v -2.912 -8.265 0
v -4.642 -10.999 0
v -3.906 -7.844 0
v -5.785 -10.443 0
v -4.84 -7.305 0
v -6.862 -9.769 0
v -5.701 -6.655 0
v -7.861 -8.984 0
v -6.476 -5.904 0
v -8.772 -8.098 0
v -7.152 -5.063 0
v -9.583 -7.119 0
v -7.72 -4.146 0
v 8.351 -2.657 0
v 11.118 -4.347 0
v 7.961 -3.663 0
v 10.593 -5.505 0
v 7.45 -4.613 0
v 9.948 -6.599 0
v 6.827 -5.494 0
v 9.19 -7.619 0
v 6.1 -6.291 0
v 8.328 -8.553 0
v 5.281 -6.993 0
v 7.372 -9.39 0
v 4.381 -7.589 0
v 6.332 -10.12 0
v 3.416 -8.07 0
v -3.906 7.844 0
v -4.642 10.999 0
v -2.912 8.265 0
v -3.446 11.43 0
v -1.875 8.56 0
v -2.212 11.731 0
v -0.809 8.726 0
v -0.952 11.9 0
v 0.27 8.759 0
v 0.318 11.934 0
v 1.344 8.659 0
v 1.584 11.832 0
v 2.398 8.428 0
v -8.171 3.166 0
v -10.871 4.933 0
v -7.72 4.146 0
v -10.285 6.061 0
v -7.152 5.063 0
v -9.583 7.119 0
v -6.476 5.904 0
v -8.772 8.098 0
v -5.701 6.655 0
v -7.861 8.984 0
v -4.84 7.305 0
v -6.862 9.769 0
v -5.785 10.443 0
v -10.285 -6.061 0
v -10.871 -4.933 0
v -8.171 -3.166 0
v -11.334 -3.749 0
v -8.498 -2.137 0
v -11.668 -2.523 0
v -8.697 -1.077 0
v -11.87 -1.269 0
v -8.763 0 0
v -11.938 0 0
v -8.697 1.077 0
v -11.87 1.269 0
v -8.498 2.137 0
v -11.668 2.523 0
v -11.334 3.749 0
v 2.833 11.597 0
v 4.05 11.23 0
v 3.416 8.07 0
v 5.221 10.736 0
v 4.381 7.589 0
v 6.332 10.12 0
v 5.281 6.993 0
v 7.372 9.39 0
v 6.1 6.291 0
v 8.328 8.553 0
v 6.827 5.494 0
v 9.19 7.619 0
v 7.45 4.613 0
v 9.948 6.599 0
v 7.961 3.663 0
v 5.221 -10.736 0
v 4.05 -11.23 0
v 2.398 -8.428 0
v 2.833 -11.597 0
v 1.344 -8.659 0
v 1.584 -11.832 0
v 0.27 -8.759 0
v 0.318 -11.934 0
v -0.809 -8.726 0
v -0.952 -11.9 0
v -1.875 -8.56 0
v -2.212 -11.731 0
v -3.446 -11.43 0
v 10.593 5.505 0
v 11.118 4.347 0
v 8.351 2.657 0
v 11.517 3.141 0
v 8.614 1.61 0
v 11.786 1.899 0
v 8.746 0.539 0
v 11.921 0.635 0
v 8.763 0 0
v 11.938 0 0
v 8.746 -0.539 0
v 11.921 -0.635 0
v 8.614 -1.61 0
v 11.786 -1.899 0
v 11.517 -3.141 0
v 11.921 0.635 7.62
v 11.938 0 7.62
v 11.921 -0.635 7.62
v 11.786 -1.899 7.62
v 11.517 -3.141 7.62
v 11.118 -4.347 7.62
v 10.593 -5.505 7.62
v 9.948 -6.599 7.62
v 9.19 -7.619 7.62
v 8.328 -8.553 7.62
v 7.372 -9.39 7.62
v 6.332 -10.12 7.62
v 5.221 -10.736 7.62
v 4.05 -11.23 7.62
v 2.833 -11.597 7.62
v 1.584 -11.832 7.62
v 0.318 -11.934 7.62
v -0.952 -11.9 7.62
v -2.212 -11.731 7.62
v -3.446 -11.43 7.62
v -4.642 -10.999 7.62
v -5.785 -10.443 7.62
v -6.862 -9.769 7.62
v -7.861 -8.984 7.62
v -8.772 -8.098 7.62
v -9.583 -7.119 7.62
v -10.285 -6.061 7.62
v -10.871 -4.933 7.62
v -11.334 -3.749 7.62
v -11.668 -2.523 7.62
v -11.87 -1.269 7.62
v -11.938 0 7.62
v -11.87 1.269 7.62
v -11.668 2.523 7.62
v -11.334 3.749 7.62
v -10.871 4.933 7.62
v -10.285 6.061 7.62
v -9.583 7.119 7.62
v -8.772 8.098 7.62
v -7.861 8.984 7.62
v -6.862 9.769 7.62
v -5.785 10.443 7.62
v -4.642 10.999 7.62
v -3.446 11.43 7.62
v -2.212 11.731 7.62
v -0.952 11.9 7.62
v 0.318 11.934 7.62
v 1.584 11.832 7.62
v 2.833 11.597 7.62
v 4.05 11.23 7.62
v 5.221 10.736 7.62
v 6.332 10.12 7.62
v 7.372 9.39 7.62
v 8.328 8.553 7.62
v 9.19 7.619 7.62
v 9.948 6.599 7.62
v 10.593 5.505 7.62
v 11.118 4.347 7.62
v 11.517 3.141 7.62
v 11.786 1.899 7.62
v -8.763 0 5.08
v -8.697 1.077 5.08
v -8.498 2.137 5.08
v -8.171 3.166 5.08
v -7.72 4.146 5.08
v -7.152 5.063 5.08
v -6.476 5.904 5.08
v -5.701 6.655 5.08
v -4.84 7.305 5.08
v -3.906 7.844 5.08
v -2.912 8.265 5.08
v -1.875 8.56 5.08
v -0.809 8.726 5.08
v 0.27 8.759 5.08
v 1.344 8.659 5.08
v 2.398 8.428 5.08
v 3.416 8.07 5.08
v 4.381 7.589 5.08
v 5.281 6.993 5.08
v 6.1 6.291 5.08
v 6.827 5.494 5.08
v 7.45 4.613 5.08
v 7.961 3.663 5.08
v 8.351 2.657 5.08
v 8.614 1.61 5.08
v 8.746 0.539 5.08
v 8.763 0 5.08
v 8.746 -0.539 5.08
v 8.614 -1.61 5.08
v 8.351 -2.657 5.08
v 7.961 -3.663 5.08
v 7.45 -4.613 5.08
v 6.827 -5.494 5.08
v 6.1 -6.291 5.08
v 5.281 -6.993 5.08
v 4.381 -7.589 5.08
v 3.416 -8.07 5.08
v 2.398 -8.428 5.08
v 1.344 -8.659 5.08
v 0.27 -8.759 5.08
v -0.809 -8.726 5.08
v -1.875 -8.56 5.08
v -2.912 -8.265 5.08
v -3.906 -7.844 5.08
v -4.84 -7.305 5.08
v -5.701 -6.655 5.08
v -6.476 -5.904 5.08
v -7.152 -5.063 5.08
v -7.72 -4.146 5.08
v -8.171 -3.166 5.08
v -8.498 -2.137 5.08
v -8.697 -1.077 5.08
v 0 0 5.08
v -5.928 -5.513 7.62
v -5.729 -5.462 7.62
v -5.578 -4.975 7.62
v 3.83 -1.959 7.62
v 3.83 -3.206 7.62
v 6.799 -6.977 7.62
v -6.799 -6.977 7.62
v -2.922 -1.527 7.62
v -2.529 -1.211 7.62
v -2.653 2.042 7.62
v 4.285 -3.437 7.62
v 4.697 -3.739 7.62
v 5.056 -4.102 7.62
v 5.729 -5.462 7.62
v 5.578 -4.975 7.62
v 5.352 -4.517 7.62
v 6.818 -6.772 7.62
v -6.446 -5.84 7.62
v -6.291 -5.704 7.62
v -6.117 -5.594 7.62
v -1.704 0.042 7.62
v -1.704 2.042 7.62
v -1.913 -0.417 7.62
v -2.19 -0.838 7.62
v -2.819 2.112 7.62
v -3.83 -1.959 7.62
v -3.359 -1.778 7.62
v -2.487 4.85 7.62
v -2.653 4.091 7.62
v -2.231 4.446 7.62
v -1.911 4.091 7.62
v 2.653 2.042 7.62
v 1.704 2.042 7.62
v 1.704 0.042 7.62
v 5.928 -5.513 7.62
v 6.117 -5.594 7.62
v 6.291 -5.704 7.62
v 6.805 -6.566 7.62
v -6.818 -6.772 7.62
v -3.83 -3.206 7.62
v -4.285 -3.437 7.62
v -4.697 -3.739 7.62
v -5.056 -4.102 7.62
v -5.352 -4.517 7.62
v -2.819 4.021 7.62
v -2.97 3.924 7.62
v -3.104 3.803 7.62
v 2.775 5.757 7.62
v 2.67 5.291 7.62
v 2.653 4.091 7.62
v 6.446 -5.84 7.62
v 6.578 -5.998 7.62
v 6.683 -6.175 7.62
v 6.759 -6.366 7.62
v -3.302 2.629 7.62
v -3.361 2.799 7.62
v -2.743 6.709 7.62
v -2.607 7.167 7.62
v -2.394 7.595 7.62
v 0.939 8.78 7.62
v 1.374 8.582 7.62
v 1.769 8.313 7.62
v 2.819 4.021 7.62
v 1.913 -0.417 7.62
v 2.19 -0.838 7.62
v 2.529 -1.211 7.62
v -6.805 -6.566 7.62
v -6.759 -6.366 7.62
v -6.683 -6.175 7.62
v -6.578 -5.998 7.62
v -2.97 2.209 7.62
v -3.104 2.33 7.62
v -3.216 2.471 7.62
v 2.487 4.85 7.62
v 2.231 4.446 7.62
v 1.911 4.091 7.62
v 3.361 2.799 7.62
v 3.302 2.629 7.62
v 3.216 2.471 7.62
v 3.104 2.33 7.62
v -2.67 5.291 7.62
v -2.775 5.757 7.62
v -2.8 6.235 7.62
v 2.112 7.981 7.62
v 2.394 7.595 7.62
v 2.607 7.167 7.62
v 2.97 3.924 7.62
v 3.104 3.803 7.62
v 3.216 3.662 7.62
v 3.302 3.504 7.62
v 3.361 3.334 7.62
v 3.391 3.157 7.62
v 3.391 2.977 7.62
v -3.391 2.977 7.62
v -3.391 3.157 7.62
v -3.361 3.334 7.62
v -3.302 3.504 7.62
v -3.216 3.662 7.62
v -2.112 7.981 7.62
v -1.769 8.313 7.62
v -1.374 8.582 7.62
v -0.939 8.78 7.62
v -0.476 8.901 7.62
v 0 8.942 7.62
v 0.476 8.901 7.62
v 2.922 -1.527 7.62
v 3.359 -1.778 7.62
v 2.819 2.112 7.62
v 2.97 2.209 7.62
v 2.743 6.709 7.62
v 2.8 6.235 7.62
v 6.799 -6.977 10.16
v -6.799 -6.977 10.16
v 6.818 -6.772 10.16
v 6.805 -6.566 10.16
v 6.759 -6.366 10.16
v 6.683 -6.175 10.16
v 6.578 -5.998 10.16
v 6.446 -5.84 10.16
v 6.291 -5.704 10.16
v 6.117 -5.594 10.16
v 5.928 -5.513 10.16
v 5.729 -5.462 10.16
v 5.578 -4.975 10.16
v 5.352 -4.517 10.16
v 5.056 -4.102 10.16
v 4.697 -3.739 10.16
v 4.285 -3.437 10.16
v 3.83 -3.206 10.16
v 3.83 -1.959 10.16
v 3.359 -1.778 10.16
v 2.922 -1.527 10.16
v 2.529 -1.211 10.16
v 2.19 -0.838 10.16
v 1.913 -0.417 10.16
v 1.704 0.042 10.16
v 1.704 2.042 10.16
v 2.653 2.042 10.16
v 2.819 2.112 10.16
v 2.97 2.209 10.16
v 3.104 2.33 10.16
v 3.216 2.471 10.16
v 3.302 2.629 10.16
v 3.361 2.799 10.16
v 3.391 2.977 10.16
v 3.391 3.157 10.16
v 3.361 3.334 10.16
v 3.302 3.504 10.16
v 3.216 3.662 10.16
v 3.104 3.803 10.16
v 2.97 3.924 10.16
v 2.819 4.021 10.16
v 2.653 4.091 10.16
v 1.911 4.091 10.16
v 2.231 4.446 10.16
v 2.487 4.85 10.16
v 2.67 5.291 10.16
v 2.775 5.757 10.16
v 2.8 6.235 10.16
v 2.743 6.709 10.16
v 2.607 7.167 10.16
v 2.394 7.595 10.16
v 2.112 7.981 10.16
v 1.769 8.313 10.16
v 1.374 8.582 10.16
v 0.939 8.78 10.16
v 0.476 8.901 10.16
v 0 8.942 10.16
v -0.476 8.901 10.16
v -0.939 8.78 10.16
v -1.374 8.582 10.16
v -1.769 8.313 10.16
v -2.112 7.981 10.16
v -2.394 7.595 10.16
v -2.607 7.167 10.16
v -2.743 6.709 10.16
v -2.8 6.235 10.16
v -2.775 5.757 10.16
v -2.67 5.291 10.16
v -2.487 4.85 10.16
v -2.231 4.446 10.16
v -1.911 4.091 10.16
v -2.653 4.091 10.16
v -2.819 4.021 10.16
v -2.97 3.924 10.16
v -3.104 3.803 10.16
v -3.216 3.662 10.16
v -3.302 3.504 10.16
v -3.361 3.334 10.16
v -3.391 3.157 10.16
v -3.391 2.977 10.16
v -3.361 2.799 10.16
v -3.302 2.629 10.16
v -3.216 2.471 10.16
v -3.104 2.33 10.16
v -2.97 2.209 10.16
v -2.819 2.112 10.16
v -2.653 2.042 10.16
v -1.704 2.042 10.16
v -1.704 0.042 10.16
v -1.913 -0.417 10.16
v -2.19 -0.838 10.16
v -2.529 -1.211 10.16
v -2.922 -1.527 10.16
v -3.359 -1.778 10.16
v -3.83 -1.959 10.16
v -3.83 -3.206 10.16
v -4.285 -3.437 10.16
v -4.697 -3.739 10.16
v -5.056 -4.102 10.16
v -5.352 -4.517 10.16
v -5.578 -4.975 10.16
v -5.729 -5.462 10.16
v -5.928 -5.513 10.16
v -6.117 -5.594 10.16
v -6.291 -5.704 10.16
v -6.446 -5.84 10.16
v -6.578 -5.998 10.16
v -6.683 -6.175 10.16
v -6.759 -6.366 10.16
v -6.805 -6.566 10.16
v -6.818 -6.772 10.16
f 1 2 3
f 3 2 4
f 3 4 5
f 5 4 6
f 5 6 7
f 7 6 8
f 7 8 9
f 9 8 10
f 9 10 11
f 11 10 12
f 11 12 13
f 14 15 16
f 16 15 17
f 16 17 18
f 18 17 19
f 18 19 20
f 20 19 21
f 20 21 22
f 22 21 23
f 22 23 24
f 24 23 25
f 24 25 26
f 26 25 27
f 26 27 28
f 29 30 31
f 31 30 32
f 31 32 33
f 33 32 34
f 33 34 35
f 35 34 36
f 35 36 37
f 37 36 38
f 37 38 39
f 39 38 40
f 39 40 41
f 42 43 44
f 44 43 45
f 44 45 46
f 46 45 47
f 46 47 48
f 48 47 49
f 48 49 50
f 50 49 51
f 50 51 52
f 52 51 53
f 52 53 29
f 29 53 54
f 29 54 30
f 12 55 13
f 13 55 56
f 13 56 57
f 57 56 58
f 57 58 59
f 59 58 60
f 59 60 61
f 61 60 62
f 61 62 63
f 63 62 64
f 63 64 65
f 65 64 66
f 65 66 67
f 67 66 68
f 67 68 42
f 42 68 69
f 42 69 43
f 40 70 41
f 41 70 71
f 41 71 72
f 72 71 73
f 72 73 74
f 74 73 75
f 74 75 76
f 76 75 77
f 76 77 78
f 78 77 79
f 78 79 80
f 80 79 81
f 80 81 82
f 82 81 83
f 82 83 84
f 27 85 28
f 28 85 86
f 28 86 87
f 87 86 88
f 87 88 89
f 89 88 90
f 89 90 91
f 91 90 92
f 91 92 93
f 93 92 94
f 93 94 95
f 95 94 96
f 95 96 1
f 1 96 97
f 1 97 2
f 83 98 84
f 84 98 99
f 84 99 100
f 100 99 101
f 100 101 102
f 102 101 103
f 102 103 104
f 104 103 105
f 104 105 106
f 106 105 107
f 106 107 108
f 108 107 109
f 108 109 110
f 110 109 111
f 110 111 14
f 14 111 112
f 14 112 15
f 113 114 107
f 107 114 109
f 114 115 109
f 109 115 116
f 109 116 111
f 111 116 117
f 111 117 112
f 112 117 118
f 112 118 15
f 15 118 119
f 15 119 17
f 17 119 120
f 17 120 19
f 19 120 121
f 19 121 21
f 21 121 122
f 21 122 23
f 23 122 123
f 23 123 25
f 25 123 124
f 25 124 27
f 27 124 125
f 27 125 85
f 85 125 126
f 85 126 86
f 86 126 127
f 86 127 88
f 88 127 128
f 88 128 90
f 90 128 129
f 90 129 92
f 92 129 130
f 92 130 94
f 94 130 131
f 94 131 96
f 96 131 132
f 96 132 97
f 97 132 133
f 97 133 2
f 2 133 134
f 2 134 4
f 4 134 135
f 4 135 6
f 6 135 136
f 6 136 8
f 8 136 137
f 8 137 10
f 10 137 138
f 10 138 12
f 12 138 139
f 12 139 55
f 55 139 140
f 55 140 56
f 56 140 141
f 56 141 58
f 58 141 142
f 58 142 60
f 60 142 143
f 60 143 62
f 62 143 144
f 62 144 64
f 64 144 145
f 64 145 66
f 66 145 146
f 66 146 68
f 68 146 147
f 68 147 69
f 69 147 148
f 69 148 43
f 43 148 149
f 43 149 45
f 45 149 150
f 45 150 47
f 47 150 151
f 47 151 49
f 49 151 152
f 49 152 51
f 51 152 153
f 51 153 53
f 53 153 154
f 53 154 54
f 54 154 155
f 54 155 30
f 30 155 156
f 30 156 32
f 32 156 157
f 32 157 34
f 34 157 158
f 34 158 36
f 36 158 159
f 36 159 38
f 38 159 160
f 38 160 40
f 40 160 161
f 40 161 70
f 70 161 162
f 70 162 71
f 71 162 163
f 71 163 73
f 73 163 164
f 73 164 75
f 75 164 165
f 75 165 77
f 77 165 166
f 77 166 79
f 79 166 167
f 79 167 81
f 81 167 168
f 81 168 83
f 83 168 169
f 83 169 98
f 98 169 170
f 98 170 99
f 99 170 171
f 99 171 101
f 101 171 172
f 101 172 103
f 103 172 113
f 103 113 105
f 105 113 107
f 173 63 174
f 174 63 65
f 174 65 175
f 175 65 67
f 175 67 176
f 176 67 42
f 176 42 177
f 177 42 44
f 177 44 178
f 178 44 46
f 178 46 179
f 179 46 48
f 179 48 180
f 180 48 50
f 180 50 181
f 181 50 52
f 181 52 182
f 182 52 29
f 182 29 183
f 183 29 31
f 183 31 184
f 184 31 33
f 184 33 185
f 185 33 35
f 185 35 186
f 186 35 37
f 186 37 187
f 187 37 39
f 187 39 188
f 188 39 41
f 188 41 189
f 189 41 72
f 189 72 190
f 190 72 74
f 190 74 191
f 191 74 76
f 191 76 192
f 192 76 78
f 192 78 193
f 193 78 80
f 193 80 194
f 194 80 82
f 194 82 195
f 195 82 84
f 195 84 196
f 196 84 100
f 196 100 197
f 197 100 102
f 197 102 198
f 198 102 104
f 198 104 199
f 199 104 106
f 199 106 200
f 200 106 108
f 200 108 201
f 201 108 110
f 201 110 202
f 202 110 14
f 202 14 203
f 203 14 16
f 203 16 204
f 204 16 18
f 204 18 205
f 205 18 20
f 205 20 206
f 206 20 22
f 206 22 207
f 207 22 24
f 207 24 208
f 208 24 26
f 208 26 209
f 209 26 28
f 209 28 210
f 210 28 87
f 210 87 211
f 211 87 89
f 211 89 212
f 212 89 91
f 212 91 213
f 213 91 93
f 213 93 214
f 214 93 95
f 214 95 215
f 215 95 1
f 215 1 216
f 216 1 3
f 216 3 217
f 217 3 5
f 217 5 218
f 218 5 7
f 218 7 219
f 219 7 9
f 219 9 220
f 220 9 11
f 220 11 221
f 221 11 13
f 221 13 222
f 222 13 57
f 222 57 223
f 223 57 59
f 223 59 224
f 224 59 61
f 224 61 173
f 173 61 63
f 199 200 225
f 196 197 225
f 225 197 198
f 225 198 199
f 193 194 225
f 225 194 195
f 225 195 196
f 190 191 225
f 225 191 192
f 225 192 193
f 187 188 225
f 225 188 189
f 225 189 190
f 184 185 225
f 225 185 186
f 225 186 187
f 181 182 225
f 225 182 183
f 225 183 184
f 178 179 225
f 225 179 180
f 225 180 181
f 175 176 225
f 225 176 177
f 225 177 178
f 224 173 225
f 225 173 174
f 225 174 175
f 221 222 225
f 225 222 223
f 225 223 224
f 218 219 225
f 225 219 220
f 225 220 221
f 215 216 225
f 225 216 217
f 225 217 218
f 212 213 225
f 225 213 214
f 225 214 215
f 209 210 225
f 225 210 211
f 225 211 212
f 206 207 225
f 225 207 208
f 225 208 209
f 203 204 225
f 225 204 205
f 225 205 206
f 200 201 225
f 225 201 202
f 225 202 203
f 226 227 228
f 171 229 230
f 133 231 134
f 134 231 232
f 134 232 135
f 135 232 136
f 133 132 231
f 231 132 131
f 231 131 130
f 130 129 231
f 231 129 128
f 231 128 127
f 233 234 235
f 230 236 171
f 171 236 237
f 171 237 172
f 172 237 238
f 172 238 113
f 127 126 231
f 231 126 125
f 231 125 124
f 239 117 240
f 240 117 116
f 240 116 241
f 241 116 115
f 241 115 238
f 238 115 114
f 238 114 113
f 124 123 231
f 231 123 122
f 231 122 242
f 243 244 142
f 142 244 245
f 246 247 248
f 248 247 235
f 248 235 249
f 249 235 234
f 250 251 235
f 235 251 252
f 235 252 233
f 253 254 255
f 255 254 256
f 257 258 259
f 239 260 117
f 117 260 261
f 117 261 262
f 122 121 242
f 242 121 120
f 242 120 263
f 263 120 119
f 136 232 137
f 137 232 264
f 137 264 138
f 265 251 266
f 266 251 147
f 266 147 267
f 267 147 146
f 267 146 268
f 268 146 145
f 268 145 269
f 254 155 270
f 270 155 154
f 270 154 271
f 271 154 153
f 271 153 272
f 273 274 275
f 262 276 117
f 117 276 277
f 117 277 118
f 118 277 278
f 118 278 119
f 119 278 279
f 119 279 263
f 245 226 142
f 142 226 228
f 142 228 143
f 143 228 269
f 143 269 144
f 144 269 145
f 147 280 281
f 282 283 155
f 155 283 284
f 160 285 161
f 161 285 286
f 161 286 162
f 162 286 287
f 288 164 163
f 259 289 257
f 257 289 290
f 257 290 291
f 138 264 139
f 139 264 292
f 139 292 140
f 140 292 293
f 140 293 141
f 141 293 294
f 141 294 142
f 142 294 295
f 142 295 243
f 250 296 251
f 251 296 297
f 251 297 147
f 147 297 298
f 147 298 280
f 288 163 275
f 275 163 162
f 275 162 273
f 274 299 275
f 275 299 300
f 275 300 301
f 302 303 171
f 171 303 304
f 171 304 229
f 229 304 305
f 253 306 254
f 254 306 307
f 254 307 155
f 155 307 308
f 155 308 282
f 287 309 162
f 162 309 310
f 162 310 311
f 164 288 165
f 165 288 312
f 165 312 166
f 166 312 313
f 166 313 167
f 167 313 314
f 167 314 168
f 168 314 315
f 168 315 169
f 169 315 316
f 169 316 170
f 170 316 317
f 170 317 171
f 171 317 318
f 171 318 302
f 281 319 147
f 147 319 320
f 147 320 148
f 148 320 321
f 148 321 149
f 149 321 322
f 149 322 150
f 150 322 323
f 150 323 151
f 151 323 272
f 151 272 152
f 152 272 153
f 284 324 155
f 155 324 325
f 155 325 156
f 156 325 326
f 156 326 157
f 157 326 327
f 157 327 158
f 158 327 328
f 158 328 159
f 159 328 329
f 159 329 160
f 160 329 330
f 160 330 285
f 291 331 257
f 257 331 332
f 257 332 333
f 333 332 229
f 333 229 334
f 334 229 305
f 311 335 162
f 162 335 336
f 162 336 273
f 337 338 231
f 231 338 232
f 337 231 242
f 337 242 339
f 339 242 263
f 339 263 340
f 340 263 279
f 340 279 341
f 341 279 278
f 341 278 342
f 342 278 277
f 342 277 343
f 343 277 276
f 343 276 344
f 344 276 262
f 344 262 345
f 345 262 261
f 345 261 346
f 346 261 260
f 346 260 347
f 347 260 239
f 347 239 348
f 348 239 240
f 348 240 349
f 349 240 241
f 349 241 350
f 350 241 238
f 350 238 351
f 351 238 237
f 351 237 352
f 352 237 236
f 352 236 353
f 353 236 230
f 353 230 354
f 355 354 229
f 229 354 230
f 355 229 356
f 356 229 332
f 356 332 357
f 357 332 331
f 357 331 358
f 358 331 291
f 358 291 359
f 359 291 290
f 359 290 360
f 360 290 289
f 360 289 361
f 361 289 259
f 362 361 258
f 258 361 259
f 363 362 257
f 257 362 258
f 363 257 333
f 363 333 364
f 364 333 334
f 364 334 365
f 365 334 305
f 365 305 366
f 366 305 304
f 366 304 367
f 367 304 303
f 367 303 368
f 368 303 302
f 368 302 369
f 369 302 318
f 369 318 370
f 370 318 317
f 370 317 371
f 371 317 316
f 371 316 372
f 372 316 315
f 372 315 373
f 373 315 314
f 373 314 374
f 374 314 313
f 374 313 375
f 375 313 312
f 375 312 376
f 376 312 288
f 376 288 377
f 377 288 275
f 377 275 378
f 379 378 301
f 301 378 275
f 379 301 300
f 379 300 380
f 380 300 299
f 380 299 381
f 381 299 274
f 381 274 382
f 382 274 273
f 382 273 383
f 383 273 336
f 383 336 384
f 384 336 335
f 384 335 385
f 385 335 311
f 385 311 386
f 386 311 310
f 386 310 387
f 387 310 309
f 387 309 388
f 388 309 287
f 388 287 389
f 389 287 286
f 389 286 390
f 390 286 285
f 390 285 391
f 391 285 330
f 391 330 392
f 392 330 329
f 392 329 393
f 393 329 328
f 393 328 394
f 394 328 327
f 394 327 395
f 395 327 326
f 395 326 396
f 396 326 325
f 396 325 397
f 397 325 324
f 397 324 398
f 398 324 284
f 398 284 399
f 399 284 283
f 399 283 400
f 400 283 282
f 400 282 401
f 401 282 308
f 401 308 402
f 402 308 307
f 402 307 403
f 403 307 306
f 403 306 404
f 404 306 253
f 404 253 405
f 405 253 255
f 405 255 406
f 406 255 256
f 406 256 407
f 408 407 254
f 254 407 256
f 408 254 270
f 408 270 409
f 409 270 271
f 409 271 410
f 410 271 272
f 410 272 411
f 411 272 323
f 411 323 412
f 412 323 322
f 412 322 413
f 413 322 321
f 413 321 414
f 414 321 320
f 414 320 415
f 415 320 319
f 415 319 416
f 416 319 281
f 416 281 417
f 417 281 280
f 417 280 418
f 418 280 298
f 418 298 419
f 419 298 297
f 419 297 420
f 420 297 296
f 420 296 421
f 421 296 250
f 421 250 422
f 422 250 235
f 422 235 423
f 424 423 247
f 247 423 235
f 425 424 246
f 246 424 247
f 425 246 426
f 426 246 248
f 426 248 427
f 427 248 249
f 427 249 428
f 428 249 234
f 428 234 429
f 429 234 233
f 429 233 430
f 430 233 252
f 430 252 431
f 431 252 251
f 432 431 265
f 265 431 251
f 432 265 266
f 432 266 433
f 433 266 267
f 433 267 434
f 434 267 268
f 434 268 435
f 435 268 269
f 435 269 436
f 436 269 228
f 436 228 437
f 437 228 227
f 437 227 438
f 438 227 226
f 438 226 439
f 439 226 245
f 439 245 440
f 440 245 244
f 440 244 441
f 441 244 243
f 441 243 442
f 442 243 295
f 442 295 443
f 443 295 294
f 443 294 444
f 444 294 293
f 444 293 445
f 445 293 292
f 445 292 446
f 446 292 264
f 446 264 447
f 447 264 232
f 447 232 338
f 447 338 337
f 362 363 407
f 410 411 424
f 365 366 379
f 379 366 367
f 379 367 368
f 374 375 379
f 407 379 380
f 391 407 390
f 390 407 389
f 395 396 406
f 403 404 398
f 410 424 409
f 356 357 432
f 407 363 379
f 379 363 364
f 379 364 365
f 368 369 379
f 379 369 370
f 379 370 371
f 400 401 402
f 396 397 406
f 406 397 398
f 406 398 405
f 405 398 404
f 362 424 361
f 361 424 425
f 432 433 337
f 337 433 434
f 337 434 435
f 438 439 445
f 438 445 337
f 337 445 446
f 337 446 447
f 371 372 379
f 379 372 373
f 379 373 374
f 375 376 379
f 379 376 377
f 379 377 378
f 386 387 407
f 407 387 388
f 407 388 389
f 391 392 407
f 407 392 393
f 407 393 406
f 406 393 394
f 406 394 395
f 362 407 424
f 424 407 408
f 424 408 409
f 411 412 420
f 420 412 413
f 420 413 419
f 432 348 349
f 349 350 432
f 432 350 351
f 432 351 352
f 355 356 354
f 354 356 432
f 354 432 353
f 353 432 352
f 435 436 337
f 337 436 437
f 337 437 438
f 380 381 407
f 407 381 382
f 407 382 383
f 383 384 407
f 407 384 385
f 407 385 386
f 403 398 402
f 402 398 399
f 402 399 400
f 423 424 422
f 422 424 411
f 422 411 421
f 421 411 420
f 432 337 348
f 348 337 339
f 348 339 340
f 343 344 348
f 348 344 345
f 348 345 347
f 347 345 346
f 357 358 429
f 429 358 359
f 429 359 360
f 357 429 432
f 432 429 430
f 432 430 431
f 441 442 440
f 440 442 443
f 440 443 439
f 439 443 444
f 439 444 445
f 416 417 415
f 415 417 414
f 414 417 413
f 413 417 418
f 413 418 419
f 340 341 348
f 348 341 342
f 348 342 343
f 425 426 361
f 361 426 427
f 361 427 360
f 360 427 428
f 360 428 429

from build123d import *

# Parameters (mm, degrees)
SKETCH1_R           = 11.938
SKETCH1_R_2         = 8.763
BOSS_EXTRUDE1_DEPTH = 5.08
SKETCH2_R           = 11.938
BOSS_EXTRUDE2_DEPTH = 2.54
BOSS_EXTRUDE3_DEPTH = 2.54


with BuildPart() as part:
    # Sketch1 → Boss-Extrude1 (new body)
    with BuildSketch(Plane.XY):
        Circle(SKETCH1_R)
        Circle(SKETCH1_R_2, mode=Mode.SUBTRACT)
    extrude(amount=BOSS_EXTRUDE1_DEPTH)

    # Sketch2 → Boss-Extrude2 (add)
    with BuildSketch(Plane.XY.offset(5.08)):
        Circle(SKETCH2_R)
    extrude(amount=BOSS_EXTRUDE2_DEPTH)

    # Sketch3 → Boss-Extrude3 (add)
    with BuildSketch(Plane.XY.offset(7.62)):
        with BuildLine():
            Line((6.799209261, -6.976502995), (-6.799209261, -6.976502995))
            ThreePointArc((-6.799209261, -6.976502995), (-6.57773466, -5.997747251), (-5.729043644, -5.462268619))
            ThreePointArc((-5.729043644, -5.462268619), (-5.055714591, -4.101642026), (-3.830122247, -3.205762488))
            Line((-3.830122247, -3.205762488), (-3.830122247, -1.958745943))
            ThreePointArc((-3.830122247, -1.958745943), (-2.529170198, -1.211237743), (-1.703785584, 0.041752673))
            Line((-1.703785584, 0.041752673), (-1.703785584, 2.042251288))
            Line((-1.703785584, 2.042251288), (-2.652822308, 2.042251288))
            ThreePointArc((-2.652822308, 2.042251288), (-3.394876144, 3.066744886), (-2.652822308, 4.091238485))
            Line((-2.652822308, 4.091238485), (-1.910768473, 4.091238485))
            ThreePointArc((-1.910768473, 4.091238485), (0, 8.941901019), (1.910768473, 4.091238485))
            Line((1.910768473, 4.091238485), (2.652822308, 4.091238485))
            ThreePointArc((2.652822308, 4.091238485), (3.394876144, 3.066744886), (2.652822308, 2.042251288))
            Line((2.652822308, 2.042251288), (1.703785584, 2.042251288))
            Line((1.703785584, 2.042251288), (1.703785584, 0.041752673))
            ThreePointArc((1.703785584, 0.041752673), (2.529170198, -1.211237743), (3.830122247, -1.958745943))
            Line((3.830122247, -1.958745943), (3.830122247, -3.205762488))
            ThreePointArc((3.830122247, -3.205762488), (5.055714591, -4.101642026), (5.729043644, -5.462268619))
            ThreePointArc((5.729043644, -5.462268619), (6.57773466, -5.997747251), (6.799209261, -6.976502995))
        make_face()
    extrude(amount=BOSS_EXTRUDE3_DEPTH)


solid = part.part
